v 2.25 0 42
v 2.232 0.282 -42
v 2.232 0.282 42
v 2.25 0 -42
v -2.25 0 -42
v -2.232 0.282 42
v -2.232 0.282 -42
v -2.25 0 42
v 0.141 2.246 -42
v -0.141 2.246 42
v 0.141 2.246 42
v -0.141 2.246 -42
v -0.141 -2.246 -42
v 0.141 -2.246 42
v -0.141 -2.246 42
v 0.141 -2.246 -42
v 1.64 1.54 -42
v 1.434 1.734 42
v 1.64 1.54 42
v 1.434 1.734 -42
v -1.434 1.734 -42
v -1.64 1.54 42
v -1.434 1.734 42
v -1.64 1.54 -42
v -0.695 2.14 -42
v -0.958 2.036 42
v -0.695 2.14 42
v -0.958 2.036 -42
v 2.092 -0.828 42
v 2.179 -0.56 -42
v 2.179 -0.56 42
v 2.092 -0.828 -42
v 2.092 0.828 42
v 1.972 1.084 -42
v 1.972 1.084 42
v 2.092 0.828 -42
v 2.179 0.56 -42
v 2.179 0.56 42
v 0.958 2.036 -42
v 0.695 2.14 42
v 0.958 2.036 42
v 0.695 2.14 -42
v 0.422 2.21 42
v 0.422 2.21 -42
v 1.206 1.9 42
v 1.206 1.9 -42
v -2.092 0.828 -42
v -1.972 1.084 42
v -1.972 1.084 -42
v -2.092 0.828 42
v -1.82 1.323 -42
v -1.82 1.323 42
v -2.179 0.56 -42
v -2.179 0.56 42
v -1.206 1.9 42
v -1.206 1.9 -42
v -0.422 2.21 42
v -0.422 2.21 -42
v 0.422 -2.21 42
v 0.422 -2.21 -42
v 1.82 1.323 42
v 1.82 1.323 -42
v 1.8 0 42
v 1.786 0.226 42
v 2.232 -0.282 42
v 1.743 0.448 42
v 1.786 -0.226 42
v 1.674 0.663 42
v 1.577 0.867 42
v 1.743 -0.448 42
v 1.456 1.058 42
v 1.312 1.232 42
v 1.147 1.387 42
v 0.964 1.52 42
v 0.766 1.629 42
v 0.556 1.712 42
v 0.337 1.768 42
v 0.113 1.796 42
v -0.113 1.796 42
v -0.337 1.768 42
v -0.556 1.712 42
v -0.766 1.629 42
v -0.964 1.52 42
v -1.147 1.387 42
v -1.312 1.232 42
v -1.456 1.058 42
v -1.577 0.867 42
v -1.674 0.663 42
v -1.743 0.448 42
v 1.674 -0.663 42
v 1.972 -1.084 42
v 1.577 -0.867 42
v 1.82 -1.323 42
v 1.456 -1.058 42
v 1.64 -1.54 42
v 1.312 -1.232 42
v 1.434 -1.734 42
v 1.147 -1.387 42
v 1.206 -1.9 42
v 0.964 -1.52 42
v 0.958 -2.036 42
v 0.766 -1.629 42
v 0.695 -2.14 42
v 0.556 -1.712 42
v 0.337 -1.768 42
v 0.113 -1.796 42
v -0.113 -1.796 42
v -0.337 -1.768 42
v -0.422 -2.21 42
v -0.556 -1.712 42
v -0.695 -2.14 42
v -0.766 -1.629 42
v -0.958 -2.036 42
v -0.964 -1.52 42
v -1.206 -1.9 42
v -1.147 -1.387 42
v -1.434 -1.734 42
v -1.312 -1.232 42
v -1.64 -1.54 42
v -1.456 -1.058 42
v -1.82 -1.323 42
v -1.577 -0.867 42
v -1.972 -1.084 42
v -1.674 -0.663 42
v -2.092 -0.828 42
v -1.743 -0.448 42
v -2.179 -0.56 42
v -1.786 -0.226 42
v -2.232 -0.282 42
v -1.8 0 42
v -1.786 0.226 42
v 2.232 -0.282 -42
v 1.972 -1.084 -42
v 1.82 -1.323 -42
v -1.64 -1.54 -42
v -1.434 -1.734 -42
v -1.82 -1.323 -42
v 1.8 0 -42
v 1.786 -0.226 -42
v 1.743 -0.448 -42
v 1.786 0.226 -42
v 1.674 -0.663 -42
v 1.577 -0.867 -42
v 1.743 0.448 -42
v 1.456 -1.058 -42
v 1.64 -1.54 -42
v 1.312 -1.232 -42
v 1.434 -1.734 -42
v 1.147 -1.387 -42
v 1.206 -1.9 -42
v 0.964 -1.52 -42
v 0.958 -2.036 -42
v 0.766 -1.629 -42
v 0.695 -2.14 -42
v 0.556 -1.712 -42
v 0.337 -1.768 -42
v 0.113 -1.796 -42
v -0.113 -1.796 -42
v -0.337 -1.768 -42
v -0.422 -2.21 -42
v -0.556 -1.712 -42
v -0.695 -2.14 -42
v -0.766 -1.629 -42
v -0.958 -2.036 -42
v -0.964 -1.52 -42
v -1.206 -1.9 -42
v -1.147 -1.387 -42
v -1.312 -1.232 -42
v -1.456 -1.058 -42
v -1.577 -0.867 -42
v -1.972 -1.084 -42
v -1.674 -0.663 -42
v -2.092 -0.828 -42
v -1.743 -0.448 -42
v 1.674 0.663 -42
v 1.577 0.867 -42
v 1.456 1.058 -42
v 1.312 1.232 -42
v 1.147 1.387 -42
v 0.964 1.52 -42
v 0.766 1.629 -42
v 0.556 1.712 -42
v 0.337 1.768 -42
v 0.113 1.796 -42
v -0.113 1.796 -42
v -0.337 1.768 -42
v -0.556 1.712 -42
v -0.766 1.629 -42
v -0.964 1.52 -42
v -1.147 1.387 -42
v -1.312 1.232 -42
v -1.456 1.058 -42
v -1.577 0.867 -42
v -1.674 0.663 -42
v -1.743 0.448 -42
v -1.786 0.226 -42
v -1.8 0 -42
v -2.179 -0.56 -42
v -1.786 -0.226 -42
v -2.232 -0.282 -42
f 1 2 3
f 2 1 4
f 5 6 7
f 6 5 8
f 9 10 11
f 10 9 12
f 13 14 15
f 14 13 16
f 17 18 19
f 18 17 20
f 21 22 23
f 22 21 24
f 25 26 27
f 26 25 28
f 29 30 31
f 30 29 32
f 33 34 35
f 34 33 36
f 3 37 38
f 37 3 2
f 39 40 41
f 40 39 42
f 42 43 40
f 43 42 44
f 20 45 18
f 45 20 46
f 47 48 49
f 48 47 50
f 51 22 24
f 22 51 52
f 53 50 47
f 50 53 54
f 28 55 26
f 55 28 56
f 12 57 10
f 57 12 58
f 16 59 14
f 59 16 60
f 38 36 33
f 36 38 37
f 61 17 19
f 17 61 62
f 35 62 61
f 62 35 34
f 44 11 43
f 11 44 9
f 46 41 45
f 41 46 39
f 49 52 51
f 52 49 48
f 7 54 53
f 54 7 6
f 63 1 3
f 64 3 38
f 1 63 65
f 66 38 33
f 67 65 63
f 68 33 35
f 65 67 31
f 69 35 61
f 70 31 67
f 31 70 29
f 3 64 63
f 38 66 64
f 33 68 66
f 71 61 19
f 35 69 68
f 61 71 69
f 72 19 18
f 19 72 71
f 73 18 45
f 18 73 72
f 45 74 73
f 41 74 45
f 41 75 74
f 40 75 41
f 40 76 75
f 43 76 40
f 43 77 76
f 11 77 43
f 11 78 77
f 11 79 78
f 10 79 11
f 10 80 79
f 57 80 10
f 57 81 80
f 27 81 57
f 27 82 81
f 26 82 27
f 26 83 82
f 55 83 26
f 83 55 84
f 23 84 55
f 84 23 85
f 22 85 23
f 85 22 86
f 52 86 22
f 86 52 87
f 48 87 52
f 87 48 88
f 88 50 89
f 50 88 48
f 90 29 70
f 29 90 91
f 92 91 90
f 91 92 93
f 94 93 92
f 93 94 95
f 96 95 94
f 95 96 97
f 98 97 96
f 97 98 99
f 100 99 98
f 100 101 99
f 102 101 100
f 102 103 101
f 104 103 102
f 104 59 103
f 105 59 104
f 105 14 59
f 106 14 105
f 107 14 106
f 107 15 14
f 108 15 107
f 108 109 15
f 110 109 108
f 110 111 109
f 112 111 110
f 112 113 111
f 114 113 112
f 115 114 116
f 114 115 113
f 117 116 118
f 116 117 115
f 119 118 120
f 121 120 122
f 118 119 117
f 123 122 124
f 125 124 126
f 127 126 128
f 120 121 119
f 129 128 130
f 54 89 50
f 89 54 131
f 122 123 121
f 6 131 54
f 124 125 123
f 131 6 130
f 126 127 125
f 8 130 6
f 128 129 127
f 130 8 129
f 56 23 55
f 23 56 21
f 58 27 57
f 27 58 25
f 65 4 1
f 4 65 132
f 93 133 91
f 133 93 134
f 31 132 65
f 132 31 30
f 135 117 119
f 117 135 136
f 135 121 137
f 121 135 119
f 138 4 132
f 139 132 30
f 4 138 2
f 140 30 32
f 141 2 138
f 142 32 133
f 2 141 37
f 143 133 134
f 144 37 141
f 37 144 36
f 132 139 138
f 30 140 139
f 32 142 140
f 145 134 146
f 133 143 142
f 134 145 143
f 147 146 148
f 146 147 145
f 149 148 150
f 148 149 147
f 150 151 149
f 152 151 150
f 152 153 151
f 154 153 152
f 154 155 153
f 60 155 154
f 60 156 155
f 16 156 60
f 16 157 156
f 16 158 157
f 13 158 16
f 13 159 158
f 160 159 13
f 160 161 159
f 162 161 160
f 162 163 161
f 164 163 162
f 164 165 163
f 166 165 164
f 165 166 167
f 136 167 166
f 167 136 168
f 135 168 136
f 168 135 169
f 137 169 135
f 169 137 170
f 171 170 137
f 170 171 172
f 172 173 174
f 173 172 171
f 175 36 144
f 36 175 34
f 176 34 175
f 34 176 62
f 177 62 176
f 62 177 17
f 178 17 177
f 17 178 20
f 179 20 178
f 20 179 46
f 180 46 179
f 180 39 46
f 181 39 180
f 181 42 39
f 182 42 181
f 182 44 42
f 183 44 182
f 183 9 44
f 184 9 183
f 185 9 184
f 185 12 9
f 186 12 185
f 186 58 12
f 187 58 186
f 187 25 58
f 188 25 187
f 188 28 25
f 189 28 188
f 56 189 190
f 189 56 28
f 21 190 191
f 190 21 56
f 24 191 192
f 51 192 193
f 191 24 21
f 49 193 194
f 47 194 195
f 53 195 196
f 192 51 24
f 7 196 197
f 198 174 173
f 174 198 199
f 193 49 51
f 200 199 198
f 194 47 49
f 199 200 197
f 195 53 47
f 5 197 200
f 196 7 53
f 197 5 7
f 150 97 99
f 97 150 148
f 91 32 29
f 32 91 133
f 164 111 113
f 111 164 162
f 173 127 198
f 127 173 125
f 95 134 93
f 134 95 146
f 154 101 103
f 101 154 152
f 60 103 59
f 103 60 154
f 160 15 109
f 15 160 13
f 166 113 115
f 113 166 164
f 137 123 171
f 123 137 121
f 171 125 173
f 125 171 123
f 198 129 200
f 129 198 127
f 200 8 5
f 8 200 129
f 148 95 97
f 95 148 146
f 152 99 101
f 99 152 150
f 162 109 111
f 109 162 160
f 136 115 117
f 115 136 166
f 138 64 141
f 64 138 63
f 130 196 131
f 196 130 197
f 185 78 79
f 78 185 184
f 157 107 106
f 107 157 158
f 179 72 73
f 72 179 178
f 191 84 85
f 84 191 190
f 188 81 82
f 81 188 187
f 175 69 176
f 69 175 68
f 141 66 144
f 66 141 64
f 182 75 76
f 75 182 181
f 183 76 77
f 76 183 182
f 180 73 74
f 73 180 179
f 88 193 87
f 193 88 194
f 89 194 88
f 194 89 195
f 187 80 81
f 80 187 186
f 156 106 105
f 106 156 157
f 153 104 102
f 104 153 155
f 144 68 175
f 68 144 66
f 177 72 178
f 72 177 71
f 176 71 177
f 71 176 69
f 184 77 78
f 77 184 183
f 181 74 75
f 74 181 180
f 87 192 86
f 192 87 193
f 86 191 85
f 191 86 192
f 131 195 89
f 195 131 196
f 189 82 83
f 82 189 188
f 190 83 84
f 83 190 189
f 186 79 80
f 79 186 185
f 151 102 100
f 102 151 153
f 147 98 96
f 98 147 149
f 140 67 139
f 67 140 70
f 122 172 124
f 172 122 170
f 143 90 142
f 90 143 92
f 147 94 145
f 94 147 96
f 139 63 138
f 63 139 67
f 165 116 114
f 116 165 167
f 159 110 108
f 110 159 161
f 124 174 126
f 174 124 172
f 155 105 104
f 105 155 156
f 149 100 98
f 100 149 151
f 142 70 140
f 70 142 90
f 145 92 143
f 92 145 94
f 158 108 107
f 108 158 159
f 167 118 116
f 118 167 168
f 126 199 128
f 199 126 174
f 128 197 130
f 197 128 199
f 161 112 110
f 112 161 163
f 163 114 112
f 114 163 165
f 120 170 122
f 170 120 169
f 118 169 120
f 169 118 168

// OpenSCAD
$fn = 50;


difference() {
	union() {
		translate(v = [0, 0, -42.0000000000]) {
			cylinder(h = 84, r = 2.2500000000);
		}
	}
	union() {
		translate(v = [0, 0, -100.0000000000]) {
			cylinder(h = 200, r = 1.8000000000);
		}
	}
}
